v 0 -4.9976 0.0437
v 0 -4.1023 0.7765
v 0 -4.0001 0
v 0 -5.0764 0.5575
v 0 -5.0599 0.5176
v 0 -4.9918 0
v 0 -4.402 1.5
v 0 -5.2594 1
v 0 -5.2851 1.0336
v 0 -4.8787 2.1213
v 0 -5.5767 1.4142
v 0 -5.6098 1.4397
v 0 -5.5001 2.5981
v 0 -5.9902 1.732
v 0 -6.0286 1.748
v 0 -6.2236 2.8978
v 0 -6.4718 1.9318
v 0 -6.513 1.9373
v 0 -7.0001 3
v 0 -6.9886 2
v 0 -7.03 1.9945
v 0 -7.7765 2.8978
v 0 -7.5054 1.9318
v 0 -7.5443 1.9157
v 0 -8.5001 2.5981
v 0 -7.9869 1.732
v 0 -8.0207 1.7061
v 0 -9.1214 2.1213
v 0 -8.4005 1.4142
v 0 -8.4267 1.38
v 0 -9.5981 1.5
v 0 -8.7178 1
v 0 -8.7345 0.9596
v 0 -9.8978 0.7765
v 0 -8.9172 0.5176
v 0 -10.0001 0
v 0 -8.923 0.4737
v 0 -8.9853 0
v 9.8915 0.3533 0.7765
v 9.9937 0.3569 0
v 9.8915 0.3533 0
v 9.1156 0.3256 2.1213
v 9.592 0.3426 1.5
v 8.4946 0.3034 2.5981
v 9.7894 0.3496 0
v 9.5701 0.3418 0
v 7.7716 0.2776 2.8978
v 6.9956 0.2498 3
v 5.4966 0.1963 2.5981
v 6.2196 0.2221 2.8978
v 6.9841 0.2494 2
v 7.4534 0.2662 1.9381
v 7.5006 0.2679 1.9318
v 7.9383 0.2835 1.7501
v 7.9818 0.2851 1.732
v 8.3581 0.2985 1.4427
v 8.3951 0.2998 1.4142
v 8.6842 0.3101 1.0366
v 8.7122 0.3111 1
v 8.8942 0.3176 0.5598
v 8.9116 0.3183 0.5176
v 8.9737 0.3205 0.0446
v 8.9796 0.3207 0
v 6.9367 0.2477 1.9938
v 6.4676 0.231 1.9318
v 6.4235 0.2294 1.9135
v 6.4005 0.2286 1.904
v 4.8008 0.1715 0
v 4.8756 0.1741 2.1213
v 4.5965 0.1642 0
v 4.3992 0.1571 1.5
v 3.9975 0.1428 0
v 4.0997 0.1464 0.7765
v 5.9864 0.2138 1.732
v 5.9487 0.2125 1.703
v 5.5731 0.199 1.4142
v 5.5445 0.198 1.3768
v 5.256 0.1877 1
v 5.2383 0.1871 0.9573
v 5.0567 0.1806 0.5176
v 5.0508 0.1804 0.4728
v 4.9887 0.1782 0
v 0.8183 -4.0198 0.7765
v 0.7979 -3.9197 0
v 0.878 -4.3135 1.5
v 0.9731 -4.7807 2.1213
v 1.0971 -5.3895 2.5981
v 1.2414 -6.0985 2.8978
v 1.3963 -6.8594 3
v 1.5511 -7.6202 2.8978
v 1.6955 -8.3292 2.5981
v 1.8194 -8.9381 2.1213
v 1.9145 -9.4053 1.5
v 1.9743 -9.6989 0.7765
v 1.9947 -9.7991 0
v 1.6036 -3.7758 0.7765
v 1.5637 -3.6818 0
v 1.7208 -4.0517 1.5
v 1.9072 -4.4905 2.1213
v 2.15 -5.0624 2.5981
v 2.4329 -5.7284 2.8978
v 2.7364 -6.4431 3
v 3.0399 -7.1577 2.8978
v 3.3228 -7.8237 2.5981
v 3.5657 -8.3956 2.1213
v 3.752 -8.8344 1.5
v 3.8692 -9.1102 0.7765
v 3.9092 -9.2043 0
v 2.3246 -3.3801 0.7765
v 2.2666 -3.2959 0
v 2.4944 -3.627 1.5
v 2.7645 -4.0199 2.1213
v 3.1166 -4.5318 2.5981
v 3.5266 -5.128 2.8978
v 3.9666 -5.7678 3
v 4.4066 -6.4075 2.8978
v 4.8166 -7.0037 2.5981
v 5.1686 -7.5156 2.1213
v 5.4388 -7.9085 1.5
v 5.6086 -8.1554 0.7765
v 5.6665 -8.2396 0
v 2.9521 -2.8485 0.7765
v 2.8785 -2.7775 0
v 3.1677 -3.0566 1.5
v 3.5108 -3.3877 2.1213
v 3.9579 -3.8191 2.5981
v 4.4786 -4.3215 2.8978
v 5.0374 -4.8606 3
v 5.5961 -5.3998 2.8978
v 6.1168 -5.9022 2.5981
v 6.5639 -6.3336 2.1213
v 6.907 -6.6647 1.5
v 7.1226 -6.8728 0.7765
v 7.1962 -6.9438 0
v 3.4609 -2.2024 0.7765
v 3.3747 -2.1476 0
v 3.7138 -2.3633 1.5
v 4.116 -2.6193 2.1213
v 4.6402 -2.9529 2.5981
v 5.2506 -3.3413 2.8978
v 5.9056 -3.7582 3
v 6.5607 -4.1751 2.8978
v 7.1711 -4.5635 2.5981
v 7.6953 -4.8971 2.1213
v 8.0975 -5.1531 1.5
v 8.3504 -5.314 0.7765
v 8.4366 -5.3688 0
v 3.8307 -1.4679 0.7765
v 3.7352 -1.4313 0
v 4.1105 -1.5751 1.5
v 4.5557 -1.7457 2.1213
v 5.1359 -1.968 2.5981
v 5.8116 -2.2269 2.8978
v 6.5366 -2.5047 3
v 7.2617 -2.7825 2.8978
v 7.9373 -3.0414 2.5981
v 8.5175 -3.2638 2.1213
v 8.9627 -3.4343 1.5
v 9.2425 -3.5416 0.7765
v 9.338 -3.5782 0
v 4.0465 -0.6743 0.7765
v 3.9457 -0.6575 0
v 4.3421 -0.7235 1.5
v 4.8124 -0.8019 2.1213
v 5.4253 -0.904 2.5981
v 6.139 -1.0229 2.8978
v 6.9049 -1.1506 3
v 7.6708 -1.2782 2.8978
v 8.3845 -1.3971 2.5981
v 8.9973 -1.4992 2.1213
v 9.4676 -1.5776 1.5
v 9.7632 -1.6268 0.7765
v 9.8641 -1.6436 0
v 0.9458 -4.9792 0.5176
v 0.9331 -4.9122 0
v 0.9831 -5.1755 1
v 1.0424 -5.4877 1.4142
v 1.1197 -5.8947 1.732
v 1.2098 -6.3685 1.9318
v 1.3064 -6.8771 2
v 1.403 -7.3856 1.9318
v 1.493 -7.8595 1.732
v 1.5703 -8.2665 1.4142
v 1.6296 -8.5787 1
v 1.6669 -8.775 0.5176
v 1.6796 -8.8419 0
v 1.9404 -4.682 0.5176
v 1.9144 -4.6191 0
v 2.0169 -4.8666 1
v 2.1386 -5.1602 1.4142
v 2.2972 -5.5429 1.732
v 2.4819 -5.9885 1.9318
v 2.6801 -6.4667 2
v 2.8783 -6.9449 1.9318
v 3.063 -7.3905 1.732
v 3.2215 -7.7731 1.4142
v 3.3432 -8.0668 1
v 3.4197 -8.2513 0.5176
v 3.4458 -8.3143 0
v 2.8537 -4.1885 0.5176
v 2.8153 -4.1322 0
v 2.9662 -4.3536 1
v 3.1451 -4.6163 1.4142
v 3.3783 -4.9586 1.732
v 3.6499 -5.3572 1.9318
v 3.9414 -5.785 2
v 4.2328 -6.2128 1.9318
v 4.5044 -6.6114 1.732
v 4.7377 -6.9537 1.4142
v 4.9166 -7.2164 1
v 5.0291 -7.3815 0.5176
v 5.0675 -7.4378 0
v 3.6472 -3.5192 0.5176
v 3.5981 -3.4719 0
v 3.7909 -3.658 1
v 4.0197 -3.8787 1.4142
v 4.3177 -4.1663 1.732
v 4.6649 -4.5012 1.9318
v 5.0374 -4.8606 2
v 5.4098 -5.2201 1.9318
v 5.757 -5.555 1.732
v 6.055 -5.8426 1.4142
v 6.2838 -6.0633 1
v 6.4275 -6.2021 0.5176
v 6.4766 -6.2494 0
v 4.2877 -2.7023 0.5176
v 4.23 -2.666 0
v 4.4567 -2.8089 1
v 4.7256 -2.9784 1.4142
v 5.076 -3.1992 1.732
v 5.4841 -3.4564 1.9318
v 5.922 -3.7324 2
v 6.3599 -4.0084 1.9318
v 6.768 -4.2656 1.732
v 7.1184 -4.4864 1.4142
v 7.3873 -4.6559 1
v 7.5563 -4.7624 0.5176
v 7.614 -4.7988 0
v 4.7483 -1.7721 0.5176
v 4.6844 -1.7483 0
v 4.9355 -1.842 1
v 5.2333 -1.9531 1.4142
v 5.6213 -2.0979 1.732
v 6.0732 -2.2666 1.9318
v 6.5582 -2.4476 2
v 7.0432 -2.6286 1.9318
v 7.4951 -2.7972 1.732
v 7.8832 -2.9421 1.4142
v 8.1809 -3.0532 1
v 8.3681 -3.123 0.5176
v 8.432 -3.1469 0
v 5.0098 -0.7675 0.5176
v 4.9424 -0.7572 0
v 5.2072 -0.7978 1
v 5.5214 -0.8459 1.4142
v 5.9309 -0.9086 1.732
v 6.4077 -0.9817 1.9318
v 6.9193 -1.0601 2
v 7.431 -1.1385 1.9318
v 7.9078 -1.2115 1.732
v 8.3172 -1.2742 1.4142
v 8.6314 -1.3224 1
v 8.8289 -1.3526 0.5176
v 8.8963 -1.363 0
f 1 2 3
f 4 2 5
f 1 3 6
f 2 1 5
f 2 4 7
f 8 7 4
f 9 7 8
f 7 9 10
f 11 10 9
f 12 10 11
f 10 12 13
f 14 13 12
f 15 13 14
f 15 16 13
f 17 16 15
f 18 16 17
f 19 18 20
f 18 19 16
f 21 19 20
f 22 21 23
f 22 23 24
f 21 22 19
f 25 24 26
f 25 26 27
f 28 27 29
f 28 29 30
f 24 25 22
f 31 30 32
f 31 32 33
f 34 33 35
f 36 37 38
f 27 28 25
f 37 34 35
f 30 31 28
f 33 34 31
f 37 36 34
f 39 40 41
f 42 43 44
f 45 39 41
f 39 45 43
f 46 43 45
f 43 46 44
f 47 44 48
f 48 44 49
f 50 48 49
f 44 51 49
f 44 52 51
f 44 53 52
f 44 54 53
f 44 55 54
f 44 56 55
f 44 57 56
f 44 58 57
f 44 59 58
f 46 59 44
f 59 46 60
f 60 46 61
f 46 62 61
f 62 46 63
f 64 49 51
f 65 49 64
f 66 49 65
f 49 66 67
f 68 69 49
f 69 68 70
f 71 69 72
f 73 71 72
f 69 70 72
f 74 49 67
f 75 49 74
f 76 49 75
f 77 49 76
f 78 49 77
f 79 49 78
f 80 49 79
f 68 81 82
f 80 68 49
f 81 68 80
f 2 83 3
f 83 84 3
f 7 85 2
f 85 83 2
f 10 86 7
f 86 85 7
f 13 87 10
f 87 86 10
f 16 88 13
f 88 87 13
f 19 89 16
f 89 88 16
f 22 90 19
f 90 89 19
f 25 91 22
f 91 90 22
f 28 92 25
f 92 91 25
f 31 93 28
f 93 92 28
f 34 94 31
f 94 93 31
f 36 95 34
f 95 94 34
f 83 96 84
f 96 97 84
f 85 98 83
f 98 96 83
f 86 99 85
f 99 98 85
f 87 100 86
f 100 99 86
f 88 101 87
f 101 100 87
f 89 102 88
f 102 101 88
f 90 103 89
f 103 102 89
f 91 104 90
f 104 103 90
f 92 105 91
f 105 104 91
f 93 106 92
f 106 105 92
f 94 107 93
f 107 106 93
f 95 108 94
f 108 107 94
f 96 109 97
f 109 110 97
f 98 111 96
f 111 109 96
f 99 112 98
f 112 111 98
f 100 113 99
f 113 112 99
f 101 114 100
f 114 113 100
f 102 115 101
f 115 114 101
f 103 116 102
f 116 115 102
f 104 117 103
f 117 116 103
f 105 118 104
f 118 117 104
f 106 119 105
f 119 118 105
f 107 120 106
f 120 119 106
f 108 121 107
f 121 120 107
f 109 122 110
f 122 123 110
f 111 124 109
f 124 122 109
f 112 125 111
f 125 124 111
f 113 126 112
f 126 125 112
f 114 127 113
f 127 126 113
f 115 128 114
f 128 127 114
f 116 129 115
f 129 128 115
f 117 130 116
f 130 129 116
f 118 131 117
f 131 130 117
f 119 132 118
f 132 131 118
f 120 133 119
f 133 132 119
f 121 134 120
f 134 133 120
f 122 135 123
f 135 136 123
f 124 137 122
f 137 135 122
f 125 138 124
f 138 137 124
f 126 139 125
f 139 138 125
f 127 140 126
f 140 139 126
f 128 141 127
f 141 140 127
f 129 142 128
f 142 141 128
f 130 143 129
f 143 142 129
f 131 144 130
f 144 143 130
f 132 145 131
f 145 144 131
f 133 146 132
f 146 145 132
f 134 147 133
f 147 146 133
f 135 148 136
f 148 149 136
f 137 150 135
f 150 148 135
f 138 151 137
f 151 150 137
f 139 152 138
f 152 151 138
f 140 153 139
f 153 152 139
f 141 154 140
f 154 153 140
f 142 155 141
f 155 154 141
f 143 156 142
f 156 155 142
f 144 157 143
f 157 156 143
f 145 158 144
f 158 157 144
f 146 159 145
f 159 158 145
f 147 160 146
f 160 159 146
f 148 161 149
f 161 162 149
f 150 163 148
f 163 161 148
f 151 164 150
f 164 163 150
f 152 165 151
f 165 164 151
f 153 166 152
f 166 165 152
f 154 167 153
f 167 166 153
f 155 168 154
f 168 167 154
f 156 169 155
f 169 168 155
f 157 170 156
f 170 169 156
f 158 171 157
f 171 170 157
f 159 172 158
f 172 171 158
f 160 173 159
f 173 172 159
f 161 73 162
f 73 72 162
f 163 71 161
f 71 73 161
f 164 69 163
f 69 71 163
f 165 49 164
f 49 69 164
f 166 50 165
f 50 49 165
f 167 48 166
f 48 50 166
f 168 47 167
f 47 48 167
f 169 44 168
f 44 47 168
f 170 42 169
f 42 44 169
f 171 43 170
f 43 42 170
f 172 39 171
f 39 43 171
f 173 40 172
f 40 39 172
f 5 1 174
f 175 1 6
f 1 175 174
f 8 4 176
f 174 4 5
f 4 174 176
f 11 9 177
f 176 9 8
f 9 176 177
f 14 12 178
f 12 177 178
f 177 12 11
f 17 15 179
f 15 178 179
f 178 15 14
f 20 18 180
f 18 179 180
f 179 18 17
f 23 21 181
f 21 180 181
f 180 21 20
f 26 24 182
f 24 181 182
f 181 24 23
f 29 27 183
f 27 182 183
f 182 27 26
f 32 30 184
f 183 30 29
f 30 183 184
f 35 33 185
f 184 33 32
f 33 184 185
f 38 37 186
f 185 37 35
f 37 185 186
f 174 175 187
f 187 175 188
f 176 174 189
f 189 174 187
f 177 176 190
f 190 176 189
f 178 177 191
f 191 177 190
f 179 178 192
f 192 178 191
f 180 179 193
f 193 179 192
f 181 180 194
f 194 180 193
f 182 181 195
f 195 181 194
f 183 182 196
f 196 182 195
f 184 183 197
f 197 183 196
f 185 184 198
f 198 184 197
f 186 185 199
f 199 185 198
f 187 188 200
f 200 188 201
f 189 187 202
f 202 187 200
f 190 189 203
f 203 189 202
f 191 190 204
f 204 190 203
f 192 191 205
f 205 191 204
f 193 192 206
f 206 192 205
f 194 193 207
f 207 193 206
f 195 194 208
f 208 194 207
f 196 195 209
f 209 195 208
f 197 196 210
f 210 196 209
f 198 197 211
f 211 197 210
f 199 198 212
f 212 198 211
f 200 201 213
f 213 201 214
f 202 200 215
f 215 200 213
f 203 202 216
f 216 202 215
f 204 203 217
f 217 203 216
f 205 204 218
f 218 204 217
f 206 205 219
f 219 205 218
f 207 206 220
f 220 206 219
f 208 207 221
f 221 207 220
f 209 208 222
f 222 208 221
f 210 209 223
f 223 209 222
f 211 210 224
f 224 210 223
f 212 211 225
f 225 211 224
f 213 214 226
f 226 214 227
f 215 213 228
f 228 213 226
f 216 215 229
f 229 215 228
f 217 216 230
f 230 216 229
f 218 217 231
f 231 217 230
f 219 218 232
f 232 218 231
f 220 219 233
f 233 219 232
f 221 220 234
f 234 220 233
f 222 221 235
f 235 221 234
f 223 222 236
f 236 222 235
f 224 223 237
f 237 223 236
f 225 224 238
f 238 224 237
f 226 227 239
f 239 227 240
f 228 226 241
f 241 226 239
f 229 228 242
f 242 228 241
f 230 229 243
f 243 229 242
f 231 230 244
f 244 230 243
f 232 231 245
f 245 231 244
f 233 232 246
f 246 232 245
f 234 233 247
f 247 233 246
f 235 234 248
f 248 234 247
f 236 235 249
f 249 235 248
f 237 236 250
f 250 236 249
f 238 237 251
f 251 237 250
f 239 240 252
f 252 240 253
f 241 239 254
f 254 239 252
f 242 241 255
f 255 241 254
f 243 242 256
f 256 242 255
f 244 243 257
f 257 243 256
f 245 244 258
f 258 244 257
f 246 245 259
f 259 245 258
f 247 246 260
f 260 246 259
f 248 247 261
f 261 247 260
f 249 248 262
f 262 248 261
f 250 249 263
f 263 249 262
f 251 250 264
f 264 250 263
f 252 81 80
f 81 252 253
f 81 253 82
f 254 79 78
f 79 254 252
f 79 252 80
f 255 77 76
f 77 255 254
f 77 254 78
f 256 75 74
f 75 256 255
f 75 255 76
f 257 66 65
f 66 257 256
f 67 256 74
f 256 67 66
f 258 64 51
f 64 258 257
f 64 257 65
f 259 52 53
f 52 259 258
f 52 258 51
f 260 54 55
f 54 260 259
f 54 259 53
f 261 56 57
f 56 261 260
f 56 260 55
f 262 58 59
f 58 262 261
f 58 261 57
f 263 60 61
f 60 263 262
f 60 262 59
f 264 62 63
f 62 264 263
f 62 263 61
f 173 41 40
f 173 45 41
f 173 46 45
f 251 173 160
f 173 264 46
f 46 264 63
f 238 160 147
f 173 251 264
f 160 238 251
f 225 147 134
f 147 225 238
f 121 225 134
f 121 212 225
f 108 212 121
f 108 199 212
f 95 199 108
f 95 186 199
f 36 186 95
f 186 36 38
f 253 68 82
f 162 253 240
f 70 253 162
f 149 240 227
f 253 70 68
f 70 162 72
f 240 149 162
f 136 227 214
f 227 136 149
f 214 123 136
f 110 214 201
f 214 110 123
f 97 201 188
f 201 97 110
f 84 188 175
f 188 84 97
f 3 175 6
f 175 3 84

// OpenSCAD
// file: ../build_environments.scad
// build_environments.scad: modules to build level sections
//

module pool(diameter=10.0, wall_height=2.0, step_width=3.0, connections=[])
{
    difference() {
        union() {
        difference() {
            cylinder(h=0.5,r1=diameter+step_width,r2=diameter+step_width,$fn=48);
            translate([0,0,-0.1])
                cylinder(h=0.7,r1=diameter,r2=diameter,$fn=48);
        }
        difference() {
            cylinder(h=wall_height,r1=diameter+step_width+1.0,r2=diameter+step_width+1.0,$fn=48);
            translate([0,0,-0.1])
                cylinder(h=wall_height+0.2,r1=diameter+step_width,r2=diameter+step_width,$fn=48);
        }
        }
    
        for (c = connections)
        {
            rotate([0,90,0]) {
                angle = atan2(c[1],c[0]);
                rotate([-angle,0,0]) {
                    cylinder(h=diameter+5.0,r1=c[2],r2=c[2],$fn=48);
                }
            }
        }
    }
}

module straight(length=10.0, width=2.0, dy1=0.0, dy2=0.0, dz=0.0)
{
    dims = [0, 0, 0, 0, 0, (dz/length)];
    matrix = [
        [ 1, dims[0], dims[1], 0 ],
        [ dims[2], 1, dims[4], 0 ],
        [ dims[5], dims[3], 1, 0 ],
        [ 0, 0, 0, 1 ]
    ];
    multmatrix(matrix)
    difference() {
        translate([dy1,0,0])
        union() {
            rotate([0,90,0]) {
                difference() {
                    cylinder(h=(length-dy1-dy2),r1=width+1.0,r2=width+1.0,$fn=24);
                    translate([0,0,-0.1])
                        cylinder(h=(length-dy1-dy2+0.2),r1=width,r2=width,$fn=24);
                }
                difference() {
                    cylinder(h=1.0,r1=width+2.0,r2=width+2.0,$fn=24);
                    translate([0,0,-0.1])
                        cylinder(h=1.2,r1=width,r2=width,$fn=24);
                }
                translate([0,0,(length-dy1-dy2)-1.0]) {
                    difference() {
                        cylinder(h=1.0,r1=width+2.0,r2=width+2.0,$fn=24);
                        translate([0,0,-0.1])
                            cylinder(h=1.2,r1=width,r2=width,$fn=24);
                    }
                }
            }
        }
        translate([0,0,-(2*width+4.0)/2])
            cube([3*length,3*length,2*width+4.0],center=true);
    }
}

module curve(p0=[0,0], center=[0,0], dir=1, angle=0.0, width=2.0)
{
    radius = sqrt((p0[0]-center[0])*(p0[0]-center[0]) + (p0[1]-center[1])*(p0[1]-center[1]));
    if (dir == 0) {
        difference() {
            rotate([0,0,-90])
            difference() {
                rotate_extrude(angle = angle, convexity = 10, $fn=32)
                    translate([radius, 0, 0])
                        circle(r = width+1.0,$fn=24);
                rotate([0,0,-1.0])
                    rotate_extrude(angle = angle+2.0, convexity = 10, $fn=32)
                        translate([radius, 0, 0])
                            circle(r = width,$fn=24);
            }
            translate([0,0,-(2*width+4.0)/2])
                cube([5*radius,5*radius,2*width+4.0],center=true);
        }
    }
    else {
        difference() {
            rotate([0,0,90])
            difference() {
                rotate_extrude(angle = -angle, convexity = 10, $fn=32)
                    translate([radius, 0, 0])
                        circle(r = width+1.0,$fn=24);
                rotate([0,0,1.0])
                    rotate_extrude(angle = -angle-2.0, convexity = 10, $fn=32)
                        translate([radius, 0, 0])
                            circle(r = width,$fn=24);
            }
            translate([0,0,-(2*width+4.0)/2])
                cube([5*radius,5*radius,2*width+4.0],center=true);
        }
    }

}

// test pool
//pool(diameter=12.0000, wall_height=3.0000, step_width=3.0000, connections=[[0.0000,-26.0000,2.0000], [23.6074,0.0000,2.0000]]);

// test straight, slope
//straight(length=26.0000, width=2.0000, dy1=11.8322, dy2=6.7082, dz=0.0000);
//straight(length=29.1549, width=12.0000, dy1=0.0000, dy2=0.0000, dz=-15.0000);

// test curve
//curve(p0=[23.6074, 0.0000], center=[23.6074, 5.0000], dir=0, angle=60.1011, width=2.0000);
//curve(p0=[33.6426, 12.4219], center=[37.9771, 9.9295], dir=1, angle=120.4627, width=2.0000);
// main file
use <../build_environments.scad>;
curve(p0=[-120.7502, 43.2411], center=[-121.0000, 36.2455], dir=0, angle=92.0454, width=2.0000);
